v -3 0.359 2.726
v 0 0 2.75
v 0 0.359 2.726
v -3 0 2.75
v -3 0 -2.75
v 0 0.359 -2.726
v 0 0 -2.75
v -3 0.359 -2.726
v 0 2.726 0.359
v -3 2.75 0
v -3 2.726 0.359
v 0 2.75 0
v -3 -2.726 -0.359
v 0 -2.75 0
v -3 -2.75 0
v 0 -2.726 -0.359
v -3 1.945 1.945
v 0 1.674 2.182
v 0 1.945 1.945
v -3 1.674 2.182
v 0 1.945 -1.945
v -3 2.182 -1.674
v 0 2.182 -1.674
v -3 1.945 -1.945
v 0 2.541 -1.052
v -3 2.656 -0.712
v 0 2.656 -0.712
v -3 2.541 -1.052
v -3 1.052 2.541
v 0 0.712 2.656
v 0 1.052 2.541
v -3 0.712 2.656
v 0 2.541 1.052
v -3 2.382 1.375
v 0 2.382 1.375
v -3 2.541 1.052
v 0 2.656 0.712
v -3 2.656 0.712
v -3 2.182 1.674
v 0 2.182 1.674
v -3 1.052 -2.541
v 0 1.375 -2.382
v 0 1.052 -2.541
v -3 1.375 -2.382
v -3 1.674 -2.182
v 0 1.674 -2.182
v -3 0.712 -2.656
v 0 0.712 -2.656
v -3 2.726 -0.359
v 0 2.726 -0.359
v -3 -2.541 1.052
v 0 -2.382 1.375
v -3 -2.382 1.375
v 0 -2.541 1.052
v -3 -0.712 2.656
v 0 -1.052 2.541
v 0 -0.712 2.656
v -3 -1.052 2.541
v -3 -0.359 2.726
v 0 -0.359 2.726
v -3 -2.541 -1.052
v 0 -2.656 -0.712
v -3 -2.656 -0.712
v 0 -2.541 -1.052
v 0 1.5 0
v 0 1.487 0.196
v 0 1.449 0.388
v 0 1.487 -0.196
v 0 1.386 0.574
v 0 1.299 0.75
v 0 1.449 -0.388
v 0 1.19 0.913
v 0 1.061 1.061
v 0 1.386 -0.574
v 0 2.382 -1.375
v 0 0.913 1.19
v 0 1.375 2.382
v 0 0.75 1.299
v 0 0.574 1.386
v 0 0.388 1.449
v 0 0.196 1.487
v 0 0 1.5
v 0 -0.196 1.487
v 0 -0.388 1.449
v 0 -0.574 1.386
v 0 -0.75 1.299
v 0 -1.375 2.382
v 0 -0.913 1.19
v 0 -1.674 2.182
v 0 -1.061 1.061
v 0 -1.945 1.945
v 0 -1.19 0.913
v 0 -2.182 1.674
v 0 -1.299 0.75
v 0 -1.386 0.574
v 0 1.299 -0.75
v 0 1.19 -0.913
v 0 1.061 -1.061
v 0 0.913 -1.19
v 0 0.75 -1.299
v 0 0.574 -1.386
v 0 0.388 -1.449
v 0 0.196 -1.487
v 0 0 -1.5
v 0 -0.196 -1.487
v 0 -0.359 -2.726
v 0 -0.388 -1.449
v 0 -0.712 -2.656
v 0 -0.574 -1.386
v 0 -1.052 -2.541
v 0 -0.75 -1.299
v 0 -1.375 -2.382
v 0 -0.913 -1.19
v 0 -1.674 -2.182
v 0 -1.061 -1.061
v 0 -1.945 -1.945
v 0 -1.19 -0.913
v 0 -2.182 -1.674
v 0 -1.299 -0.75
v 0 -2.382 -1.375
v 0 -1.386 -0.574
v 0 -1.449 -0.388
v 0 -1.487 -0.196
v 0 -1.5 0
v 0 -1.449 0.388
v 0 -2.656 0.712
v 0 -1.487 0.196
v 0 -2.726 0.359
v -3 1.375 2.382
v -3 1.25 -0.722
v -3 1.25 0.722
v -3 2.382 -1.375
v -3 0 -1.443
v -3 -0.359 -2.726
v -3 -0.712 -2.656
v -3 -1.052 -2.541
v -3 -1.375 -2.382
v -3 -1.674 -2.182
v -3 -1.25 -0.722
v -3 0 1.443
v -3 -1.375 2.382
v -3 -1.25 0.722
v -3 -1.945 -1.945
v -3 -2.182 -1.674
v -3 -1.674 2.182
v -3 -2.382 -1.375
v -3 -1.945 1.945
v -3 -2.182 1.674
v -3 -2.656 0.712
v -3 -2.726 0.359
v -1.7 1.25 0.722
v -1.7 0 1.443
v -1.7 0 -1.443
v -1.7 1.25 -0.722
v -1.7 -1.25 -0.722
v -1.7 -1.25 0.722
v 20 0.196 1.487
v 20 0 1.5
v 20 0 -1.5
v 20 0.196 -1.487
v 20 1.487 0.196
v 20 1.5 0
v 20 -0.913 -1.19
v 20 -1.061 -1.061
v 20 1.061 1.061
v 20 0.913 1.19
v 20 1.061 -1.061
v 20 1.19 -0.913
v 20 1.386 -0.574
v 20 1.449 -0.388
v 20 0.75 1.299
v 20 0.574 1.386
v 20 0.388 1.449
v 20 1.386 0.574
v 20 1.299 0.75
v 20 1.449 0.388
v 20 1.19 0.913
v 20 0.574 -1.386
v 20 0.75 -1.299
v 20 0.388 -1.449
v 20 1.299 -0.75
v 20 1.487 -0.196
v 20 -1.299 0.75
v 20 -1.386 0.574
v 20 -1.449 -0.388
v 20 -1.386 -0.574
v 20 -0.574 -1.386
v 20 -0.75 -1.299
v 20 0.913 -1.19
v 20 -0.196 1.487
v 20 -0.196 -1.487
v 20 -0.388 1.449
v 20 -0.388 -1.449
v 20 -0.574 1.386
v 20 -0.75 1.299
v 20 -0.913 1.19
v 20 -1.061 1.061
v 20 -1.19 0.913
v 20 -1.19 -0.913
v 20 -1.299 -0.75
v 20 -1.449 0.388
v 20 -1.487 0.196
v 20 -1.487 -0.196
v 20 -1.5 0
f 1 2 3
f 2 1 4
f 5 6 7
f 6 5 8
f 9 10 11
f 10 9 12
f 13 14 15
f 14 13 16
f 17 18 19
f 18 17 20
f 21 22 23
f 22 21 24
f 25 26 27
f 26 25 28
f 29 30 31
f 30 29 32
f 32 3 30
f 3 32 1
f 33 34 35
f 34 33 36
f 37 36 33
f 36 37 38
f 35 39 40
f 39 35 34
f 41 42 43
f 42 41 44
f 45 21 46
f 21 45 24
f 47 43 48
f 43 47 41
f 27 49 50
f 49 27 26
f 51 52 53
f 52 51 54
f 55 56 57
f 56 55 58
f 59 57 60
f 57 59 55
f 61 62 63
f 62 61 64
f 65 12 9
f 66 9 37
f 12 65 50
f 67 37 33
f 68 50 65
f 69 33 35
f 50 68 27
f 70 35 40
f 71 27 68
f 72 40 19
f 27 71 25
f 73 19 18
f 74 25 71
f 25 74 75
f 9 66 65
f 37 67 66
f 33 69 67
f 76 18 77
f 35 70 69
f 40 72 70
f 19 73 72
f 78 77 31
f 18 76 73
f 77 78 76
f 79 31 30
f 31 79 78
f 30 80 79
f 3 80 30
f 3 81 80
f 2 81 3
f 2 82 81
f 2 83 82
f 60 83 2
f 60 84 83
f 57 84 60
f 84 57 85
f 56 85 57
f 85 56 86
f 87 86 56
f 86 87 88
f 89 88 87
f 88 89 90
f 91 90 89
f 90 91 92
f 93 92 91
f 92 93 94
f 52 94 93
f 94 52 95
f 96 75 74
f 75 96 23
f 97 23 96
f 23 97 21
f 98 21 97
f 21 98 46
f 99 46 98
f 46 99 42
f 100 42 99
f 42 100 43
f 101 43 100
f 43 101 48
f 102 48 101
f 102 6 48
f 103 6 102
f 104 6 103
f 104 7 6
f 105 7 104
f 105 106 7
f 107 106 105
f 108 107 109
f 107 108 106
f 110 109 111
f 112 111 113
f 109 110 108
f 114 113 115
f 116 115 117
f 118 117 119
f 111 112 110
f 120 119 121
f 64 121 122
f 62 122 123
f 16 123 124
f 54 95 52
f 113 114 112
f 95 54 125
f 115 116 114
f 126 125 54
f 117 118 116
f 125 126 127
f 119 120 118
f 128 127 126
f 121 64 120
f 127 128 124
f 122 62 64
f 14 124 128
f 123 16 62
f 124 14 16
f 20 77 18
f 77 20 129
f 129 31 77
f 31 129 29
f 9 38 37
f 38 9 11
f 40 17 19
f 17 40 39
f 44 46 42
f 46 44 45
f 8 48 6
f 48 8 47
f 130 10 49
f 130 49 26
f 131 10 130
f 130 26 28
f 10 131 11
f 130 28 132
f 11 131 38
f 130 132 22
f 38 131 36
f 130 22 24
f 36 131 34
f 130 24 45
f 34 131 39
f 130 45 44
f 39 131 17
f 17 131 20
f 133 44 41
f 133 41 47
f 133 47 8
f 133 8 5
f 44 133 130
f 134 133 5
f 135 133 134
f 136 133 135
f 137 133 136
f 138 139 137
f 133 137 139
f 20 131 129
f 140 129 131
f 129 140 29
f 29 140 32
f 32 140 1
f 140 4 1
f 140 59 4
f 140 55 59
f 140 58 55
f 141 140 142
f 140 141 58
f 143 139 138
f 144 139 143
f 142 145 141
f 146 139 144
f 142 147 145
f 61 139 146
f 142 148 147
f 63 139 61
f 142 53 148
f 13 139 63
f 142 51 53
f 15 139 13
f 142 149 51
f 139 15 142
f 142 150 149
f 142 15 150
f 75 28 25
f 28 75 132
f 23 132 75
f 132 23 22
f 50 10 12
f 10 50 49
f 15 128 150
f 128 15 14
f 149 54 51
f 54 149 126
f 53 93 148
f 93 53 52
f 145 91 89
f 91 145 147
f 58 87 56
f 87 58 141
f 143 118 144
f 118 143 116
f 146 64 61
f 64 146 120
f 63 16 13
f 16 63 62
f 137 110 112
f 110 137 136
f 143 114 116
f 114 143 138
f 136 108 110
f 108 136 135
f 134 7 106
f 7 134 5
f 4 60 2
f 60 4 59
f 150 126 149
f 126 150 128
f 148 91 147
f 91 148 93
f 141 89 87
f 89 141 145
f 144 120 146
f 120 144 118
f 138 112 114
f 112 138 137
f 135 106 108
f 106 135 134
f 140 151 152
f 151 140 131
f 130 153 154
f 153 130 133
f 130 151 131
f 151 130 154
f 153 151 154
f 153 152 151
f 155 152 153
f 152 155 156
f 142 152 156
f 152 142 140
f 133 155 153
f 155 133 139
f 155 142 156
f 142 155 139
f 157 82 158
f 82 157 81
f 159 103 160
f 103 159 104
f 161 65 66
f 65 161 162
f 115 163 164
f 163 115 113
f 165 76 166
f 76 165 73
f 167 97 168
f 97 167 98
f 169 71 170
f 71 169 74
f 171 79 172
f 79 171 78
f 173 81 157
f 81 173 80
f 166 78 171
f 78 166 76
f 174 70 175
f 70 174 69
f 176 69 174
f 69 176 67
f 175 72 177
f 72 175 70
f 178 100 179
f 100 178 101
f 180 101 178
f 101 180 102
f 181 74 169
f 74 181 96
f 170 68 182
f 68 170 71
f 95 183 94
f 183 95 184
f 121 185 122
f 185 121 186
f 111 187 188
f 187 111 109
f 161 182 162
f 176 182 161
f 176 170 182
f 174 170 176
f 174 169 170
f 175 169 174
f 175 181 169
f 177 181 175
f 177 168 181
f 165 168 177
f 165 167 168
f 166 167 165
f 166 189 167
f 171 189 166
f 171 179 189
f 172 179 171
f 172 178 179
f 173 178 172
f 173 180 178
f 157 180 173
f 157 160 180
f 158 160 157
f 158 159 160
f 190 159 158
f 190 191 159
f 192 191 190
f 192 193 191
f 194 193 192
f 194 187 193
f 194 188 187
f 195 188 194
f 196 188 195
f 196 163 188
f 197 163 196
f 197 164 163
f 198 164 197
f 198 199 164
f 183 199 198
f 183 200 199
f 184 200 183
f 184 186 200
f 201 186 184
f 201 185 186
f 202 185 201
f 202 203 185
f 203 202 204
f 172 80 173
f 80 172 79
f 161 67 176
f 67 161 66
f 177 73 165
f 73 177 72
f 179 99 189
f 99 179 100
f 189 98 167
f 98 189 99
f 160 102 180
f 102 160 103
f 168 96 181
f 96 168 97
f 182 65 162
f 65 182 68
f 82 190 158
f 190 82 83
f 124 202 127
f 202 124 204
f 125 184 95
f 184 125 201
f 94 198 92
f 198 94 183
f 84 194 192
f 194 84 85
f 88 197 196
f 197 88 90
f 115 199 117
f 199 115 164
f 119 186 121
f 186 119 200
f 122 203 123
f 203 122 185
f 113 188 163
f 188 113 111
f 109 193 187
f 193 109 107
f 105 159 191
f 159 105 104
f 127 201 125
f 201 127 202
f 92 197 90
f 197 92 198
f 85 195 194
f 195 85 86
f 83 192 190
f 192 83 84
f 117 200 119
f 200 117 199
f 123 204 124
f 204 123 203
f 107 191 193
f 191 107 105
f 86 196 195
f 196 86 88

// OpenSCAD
// file: ../../../lib/nutsnbolts/data-access.scad
// Norm Nuts and Bolts - a OpenSCAD library
// Copyright (C) 2012  Johannes Kneer

// This program is free software: you can redistribute it and/or modify
// it under the terms of the GNU General Public License as published by
// the Free Software Foundation, either version 3 of the License, or
// (at your option) any later version.

// This program is distributed in the hope that it will be useful,
// but WITHOUT ANY WARRANTY; without even the implied warranty of
// MERCHANTABILITY or FITNESS FOR A PARTICULAR PURPOSE.  See the
// GNU General Public License for more details.

// You should have received a copy of the GNU General Public License
// along with this program.  If not, see <http://www.gnu.org/licenses/>.


// DATABASE ACCESS FUNCTIONS AND CONSTANTS



// == CONSTANTS ==

// screw table access keys
_NB_S_DESC            = 0;
_NB_S_FAMKEY			    = 1;
_NB_S_LENGTH          = 2;
_NB_S_NOTHREAD_LENGTH = 3;

_NB_F_DESC			      = 0;
_NB_F_OUTER_DIA       = 1;
_NB_F_INNER_DIA       = 2;
_NB_F_LEAD            = 3;
_NB_F_KEY             = 4;
_NB_F_KEY_DEPTH       = 5;
_NB_F_HEAD_HEIGHT     = 6;
_NB_F_HEAD_DIA        = 7;
_NB_F_NUT_KEY         = 8;
_NB_F_NUT_HEIGHT      = 9;
_NB_F_PITCH_FINE      = 10;
_NB_F_PITCH_MEDIUM    = 11;
_NB_F_PITCH_COARSE    = 12;


// == FUNCTIONS ==

// _get_screw("descriptor")   with descriptor = M8x25
//   find the line for a general object in the data matrix

function _get_screw(n) = data_screw[search([n], data_screw)[0]];
function _get_screw_fam(n) = data_screw_fam[search([_get_screw(n)[_NB_S_FAMKEY]], data_screw_fam)[0]];

function _get_fam(n) = data_screw_fam[search([n], data_screw_fam)[0]];


// _get_XXXXX("descriptor") functions
// find a single property in the database

function _get_desc(n)        = _get_screw(n)[_NB_S_DESC];
function _get_famkey(n)         = _get_screw(n)[_NB_S_FAMKEY];
function _get_length(n)      = _get_screw(n)[_NB_S_LENGTH];
function _get_nt_length(n)   = _get_screw(n)[_NB_S_NOTHREAD_LENGTH];

function _get_outer_dia(n)   = _get_screw_fam(n)[_NB_F_OUTER_DIA];
function _get_inner_dia(n)   = _get_screw_fam(n)[_NB_F_INNER_DIA];
function _get_lead(n)        = _get_screw_fam(n)[_NB_F_LEAD];
function _get_head_height(n) = _get_screw_fam(n)[_NB_F_HEAD_HEIGHT];
function _get_head_dia(n)    = _get_screw_fam(n)[_NB_F_HEAD_DIA];
function _get_nut_key(n)     = _get_screw_fam(n)[_NB_F_NUT_KEY];
function _get_nut_height(n)  = _get_screw_fam(n)[_NB_F_NUT_HEIGHT];
function _get_fine_pitch(n)  = _get_screw_fam(n)[_NB_F_PITCH_FINE];
function _get_medium_pitch(n)  = _get_screw_fam(n)[_NB_F_PITCH_MEDIUM];
function _get_coarse_pitch(n)  = _get_screw_fam(n)[_NB_F_PITCH_COARSE];
// main file
/**********************************************************************************************************************
 **
 ** parts/vitamins/screw_M3x20.scad
 **
 ** This file renders a screw of the dimensions specified by the file name.
 **
 **********************************************************************************************************************/

include <../../../lib/nutsnbolts/cyl_head_bolt.scad>;

$fn = 48;
rotate([0, -90, 0])
	screw("M3x20"); 
